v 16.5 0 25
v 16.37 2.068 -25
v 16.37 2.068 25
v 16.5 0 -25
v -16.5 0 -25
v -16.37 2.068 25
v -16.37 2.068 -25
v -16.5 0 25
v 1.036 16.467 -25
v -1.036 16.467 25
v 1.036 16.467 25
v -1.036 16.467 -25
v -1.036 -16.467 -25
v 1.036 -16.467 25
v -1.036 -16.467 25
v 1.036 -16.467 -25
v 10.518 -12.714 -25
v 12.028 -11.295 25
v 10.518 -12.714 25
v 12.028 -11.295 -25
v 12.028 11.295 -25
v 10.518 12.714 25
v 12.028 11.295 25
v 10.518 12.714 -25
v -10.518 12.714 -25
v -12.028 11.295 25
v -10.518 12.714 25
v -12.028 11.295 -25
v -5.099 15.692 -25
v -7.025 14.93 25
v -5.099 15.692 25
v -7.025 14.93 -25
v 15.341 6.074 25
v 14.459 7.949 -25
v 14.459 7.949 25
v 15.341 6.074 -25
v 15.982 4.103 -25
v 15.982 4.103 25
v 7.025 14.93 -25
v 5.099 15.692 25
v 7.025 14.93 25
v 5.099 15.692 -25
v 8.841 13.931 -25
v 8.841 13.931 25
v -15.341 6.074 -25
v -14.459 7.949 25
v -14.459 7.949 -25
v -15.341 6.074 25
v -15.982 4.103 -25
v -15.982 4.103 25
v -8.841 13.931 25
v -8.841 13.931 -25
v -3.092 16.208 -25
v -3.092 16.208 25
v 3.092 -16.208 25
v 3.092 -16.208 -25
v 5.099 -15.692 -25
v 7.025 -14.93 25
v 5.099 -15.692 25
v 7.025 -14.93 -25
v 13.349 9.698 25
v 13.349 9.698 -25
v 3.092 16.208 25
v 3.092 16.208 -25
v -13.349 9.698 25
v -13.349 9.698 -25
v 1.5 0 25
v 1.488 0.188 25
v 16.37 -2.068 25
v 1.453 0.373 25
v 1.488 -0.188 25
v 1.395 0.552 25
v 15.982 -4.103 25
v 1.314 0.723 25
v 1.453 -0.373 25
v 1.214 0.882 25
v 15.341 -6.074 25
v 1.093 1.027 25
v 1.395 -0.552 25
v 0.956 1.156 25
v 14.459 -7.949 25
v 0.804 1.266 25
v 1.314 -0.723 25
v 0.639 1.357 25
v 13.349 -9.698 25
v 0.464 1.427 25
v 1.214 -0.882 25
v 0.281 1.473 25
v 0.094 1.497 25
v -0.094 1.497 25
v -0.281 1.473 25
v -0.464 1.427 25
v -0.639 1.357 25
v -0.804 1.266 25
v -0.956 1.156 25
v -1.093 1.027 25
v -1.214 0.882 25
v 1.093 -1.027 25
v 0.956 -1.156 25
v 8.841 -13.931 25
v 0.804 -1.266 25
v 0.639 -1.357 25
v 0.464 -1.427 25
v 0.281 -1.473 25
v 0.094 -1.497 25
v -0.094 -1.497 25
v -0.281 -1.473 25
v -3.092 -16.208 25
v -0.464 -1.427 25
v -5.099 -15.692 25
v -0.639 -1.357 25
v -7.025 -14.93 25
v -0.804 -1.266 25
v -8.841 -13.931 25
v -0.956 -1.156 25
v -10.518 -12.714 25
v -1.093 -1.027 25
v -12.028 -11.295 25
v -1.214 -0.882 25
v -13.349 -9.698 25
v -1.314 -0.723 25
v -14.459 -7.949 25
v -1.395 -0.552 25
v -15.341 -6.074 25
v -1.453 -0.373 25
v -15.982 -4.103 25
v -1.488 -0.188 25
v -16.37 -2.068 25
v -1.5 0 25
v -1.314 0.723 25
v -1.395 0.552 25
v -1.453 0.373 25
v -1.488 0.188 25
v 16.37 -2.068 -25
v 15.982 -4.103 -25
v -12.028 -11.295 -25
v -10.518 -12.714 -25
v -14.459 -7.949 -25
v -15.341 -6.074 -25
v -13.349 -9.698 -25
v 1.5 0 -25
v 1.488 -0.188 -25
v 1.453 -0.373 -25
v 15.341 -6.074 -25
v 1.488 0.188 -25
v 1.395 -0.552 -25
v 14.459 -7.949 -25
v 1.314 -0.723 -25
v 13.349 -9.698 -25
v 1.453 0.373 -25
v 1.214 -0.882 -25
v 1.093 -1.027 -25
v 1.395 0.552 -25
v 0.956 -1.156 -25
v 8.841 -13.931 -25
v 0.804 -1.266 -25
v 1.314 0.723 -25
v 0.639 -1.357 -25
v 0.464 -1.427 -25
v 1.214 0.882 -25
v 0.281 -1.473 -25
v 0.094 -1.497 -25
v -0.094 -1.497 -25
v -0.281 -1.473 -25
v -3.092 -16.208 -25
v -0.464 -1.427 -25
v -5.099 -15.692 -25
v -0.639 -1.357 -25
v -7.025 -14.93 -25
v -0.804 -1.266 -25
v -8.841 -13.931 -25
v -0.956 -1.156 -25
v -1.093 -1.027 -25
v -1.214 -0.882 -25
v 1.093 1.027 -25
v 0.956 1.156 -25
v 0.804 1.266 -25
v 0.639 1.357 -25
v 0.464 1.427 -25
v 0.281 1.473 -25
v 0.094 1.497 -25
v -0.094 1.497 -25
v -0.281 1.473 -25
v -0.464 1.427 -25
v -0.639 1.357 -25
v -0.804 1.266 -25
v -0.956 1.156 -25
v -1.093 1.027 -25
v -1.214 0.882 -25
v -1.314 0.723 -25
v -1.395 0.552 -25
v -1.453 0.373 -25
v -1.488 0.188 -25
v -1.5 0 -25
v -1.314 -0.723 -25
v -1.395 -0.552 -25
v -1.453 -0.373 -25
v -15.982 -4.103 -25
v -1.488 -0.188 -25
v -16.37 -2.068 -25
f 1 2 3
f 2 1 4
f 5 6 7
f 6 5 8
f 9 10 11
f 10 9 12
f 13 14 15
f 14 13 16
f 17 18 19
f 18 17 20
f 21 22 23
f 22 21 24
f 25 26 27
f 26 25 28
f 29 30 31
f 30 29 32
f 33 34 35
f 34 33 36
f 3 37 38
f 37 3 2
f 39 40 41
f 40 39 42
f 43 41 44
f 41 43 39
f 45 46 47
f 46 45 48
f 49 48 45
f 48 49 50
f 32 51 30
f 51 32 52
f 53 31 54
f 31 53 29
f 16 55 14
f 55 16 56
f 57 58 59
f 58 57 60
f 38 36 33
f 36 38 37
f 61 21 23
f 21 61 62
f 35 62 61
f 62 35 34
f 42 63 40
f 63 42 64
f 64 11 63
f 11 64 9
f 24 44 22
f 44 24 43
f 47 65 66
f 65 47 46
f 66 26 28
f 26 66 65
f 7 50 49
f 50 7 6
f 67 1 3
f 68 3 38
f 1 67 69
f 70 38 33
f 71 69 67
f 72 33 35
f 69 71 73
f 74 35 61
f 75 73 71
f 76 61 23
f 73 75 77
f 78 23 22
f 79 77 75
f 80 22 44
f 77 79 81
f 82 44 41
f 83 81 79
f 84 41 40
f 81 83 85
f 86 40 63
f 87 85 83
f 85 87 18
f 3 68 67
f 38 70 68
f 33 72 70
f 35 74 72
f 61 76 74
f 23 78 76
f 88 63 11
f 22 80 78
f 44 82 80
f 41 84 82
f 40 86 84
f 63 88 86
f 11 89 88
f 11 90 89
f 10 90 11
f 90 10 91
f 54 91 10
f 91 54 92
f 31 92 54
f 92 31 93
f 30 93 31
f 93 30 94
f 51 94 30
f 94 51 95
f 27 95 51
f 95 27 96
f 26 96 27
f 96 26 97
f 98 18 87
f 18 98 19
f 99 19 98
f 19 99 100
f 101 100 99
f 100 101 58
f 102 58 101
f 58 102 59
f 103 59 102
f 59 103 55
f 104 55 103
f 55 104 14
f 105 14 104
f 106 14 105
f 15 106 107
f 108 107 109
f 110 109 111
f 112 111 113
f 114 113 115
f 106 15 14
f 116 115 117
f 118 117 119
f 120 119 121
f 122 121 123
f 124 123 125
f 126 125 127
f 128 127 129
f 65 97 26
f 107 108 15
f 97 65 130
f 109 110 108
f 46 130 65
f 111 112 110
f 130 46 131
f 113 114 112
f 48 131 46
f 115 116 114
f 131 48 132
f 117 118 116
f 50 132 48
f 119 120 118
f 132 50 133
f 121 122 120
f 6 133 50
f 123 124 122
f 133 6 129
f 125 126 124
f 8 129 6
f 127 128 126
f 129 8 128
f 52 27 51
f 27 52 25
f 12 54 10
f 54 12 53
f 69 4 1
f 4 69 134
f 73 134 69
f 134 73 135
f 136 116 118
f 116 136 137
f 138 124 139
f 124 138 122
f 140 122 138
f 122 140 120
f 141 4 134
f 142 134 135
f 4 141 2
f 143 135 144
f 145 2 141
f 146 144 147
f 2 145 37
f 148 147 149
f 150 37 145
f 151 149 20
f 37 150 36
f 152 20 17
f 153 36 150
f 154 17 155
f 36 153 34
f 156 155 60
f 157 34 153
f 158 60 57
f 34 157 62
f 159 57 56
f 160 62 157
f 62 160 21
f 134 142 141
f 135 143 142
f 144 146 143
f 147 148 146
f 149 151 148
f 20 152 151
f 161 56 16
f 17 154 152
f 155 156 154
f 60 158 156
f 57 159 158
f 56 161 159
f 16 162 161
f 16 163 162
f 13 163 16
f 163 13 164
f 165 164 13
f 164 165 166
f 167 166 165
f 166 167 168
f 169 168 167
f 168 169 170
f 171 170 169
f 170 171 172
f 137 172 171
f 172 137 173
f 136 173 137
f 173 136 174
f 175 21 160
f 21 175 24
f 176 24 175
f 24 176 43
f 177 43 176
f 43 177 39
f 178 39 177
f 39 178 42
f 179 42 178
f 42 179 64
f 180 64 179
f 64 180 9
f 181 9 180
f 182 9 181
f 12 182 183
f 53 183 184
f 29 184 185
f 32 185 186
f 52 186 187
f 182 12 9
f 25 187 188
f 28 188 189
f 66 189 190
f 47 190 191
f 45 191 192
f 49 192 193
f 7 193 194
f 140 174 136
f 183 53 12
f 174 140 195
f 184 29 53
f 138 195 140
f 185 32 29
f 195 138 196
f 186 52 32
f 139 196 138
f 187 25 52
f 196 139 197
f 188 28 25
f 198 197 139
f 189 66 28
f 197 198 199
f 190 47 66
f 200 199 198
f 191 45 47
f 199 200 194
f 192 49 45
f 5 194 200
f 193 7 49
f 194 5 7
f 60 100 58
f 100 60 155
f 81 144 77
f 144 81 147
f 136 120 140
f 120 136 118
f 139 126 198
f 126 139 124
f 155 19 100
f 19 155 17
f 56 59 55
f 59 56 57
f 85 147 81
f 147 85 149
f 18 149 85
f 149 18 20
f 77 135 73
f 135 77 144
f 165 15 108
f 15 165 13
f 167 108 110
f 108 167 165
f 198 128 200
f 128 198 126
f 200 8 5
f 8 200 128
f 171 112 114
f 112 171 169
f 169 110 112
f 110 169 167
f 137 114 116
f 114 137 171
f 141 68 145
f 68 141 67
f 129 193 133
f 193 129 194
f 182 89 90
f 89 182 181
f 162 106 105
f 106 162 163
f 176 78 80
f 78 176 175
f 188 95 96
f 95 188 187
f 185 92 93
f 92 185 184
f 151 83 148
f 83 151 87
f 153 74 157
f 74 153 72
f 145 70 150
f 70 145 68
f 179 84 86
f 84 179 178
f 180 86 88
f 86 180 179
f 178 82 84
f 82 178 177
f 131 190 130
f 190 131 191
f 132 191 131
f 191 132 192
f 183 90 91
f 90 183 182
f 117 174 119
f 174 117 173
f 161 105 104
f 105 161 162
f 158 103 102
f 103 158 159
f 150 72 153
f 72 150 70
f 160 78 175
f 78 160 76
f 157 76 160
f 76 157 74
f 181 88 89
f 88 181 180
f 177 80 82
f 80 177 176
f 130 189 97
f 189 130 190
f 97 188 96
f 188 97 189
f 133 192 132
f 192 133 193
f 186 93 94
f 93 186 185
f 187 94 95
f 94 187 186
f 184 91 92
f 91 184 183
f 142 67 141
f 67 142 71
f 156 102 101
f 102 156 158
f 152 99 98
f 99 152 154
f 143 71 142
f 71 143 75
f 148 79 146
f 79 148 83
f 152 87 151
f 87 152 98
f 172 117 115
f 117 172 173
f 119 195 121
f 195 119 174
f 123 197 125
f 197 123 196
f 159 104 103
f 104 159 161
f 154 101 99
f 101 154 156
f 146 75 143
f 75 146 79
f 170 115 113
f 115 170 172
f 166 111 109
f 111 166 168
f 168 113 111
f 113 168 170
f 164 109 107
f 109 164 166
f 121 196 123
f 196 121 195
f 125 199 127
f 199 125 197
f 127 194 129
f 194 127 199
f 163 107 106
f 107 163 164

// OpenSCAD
$fn = 50;


difference() {
	union() {
		translate(v = [0, 0, -25.0000000000]) {
			cylinder(h = 50, r = 16.5000000000);
		}
	}
	union() {
		translate(v = [0, 0, -100.0000000000]) {
			cylinder(h = 200, r = 1.5000000000);
		}
	}
}
